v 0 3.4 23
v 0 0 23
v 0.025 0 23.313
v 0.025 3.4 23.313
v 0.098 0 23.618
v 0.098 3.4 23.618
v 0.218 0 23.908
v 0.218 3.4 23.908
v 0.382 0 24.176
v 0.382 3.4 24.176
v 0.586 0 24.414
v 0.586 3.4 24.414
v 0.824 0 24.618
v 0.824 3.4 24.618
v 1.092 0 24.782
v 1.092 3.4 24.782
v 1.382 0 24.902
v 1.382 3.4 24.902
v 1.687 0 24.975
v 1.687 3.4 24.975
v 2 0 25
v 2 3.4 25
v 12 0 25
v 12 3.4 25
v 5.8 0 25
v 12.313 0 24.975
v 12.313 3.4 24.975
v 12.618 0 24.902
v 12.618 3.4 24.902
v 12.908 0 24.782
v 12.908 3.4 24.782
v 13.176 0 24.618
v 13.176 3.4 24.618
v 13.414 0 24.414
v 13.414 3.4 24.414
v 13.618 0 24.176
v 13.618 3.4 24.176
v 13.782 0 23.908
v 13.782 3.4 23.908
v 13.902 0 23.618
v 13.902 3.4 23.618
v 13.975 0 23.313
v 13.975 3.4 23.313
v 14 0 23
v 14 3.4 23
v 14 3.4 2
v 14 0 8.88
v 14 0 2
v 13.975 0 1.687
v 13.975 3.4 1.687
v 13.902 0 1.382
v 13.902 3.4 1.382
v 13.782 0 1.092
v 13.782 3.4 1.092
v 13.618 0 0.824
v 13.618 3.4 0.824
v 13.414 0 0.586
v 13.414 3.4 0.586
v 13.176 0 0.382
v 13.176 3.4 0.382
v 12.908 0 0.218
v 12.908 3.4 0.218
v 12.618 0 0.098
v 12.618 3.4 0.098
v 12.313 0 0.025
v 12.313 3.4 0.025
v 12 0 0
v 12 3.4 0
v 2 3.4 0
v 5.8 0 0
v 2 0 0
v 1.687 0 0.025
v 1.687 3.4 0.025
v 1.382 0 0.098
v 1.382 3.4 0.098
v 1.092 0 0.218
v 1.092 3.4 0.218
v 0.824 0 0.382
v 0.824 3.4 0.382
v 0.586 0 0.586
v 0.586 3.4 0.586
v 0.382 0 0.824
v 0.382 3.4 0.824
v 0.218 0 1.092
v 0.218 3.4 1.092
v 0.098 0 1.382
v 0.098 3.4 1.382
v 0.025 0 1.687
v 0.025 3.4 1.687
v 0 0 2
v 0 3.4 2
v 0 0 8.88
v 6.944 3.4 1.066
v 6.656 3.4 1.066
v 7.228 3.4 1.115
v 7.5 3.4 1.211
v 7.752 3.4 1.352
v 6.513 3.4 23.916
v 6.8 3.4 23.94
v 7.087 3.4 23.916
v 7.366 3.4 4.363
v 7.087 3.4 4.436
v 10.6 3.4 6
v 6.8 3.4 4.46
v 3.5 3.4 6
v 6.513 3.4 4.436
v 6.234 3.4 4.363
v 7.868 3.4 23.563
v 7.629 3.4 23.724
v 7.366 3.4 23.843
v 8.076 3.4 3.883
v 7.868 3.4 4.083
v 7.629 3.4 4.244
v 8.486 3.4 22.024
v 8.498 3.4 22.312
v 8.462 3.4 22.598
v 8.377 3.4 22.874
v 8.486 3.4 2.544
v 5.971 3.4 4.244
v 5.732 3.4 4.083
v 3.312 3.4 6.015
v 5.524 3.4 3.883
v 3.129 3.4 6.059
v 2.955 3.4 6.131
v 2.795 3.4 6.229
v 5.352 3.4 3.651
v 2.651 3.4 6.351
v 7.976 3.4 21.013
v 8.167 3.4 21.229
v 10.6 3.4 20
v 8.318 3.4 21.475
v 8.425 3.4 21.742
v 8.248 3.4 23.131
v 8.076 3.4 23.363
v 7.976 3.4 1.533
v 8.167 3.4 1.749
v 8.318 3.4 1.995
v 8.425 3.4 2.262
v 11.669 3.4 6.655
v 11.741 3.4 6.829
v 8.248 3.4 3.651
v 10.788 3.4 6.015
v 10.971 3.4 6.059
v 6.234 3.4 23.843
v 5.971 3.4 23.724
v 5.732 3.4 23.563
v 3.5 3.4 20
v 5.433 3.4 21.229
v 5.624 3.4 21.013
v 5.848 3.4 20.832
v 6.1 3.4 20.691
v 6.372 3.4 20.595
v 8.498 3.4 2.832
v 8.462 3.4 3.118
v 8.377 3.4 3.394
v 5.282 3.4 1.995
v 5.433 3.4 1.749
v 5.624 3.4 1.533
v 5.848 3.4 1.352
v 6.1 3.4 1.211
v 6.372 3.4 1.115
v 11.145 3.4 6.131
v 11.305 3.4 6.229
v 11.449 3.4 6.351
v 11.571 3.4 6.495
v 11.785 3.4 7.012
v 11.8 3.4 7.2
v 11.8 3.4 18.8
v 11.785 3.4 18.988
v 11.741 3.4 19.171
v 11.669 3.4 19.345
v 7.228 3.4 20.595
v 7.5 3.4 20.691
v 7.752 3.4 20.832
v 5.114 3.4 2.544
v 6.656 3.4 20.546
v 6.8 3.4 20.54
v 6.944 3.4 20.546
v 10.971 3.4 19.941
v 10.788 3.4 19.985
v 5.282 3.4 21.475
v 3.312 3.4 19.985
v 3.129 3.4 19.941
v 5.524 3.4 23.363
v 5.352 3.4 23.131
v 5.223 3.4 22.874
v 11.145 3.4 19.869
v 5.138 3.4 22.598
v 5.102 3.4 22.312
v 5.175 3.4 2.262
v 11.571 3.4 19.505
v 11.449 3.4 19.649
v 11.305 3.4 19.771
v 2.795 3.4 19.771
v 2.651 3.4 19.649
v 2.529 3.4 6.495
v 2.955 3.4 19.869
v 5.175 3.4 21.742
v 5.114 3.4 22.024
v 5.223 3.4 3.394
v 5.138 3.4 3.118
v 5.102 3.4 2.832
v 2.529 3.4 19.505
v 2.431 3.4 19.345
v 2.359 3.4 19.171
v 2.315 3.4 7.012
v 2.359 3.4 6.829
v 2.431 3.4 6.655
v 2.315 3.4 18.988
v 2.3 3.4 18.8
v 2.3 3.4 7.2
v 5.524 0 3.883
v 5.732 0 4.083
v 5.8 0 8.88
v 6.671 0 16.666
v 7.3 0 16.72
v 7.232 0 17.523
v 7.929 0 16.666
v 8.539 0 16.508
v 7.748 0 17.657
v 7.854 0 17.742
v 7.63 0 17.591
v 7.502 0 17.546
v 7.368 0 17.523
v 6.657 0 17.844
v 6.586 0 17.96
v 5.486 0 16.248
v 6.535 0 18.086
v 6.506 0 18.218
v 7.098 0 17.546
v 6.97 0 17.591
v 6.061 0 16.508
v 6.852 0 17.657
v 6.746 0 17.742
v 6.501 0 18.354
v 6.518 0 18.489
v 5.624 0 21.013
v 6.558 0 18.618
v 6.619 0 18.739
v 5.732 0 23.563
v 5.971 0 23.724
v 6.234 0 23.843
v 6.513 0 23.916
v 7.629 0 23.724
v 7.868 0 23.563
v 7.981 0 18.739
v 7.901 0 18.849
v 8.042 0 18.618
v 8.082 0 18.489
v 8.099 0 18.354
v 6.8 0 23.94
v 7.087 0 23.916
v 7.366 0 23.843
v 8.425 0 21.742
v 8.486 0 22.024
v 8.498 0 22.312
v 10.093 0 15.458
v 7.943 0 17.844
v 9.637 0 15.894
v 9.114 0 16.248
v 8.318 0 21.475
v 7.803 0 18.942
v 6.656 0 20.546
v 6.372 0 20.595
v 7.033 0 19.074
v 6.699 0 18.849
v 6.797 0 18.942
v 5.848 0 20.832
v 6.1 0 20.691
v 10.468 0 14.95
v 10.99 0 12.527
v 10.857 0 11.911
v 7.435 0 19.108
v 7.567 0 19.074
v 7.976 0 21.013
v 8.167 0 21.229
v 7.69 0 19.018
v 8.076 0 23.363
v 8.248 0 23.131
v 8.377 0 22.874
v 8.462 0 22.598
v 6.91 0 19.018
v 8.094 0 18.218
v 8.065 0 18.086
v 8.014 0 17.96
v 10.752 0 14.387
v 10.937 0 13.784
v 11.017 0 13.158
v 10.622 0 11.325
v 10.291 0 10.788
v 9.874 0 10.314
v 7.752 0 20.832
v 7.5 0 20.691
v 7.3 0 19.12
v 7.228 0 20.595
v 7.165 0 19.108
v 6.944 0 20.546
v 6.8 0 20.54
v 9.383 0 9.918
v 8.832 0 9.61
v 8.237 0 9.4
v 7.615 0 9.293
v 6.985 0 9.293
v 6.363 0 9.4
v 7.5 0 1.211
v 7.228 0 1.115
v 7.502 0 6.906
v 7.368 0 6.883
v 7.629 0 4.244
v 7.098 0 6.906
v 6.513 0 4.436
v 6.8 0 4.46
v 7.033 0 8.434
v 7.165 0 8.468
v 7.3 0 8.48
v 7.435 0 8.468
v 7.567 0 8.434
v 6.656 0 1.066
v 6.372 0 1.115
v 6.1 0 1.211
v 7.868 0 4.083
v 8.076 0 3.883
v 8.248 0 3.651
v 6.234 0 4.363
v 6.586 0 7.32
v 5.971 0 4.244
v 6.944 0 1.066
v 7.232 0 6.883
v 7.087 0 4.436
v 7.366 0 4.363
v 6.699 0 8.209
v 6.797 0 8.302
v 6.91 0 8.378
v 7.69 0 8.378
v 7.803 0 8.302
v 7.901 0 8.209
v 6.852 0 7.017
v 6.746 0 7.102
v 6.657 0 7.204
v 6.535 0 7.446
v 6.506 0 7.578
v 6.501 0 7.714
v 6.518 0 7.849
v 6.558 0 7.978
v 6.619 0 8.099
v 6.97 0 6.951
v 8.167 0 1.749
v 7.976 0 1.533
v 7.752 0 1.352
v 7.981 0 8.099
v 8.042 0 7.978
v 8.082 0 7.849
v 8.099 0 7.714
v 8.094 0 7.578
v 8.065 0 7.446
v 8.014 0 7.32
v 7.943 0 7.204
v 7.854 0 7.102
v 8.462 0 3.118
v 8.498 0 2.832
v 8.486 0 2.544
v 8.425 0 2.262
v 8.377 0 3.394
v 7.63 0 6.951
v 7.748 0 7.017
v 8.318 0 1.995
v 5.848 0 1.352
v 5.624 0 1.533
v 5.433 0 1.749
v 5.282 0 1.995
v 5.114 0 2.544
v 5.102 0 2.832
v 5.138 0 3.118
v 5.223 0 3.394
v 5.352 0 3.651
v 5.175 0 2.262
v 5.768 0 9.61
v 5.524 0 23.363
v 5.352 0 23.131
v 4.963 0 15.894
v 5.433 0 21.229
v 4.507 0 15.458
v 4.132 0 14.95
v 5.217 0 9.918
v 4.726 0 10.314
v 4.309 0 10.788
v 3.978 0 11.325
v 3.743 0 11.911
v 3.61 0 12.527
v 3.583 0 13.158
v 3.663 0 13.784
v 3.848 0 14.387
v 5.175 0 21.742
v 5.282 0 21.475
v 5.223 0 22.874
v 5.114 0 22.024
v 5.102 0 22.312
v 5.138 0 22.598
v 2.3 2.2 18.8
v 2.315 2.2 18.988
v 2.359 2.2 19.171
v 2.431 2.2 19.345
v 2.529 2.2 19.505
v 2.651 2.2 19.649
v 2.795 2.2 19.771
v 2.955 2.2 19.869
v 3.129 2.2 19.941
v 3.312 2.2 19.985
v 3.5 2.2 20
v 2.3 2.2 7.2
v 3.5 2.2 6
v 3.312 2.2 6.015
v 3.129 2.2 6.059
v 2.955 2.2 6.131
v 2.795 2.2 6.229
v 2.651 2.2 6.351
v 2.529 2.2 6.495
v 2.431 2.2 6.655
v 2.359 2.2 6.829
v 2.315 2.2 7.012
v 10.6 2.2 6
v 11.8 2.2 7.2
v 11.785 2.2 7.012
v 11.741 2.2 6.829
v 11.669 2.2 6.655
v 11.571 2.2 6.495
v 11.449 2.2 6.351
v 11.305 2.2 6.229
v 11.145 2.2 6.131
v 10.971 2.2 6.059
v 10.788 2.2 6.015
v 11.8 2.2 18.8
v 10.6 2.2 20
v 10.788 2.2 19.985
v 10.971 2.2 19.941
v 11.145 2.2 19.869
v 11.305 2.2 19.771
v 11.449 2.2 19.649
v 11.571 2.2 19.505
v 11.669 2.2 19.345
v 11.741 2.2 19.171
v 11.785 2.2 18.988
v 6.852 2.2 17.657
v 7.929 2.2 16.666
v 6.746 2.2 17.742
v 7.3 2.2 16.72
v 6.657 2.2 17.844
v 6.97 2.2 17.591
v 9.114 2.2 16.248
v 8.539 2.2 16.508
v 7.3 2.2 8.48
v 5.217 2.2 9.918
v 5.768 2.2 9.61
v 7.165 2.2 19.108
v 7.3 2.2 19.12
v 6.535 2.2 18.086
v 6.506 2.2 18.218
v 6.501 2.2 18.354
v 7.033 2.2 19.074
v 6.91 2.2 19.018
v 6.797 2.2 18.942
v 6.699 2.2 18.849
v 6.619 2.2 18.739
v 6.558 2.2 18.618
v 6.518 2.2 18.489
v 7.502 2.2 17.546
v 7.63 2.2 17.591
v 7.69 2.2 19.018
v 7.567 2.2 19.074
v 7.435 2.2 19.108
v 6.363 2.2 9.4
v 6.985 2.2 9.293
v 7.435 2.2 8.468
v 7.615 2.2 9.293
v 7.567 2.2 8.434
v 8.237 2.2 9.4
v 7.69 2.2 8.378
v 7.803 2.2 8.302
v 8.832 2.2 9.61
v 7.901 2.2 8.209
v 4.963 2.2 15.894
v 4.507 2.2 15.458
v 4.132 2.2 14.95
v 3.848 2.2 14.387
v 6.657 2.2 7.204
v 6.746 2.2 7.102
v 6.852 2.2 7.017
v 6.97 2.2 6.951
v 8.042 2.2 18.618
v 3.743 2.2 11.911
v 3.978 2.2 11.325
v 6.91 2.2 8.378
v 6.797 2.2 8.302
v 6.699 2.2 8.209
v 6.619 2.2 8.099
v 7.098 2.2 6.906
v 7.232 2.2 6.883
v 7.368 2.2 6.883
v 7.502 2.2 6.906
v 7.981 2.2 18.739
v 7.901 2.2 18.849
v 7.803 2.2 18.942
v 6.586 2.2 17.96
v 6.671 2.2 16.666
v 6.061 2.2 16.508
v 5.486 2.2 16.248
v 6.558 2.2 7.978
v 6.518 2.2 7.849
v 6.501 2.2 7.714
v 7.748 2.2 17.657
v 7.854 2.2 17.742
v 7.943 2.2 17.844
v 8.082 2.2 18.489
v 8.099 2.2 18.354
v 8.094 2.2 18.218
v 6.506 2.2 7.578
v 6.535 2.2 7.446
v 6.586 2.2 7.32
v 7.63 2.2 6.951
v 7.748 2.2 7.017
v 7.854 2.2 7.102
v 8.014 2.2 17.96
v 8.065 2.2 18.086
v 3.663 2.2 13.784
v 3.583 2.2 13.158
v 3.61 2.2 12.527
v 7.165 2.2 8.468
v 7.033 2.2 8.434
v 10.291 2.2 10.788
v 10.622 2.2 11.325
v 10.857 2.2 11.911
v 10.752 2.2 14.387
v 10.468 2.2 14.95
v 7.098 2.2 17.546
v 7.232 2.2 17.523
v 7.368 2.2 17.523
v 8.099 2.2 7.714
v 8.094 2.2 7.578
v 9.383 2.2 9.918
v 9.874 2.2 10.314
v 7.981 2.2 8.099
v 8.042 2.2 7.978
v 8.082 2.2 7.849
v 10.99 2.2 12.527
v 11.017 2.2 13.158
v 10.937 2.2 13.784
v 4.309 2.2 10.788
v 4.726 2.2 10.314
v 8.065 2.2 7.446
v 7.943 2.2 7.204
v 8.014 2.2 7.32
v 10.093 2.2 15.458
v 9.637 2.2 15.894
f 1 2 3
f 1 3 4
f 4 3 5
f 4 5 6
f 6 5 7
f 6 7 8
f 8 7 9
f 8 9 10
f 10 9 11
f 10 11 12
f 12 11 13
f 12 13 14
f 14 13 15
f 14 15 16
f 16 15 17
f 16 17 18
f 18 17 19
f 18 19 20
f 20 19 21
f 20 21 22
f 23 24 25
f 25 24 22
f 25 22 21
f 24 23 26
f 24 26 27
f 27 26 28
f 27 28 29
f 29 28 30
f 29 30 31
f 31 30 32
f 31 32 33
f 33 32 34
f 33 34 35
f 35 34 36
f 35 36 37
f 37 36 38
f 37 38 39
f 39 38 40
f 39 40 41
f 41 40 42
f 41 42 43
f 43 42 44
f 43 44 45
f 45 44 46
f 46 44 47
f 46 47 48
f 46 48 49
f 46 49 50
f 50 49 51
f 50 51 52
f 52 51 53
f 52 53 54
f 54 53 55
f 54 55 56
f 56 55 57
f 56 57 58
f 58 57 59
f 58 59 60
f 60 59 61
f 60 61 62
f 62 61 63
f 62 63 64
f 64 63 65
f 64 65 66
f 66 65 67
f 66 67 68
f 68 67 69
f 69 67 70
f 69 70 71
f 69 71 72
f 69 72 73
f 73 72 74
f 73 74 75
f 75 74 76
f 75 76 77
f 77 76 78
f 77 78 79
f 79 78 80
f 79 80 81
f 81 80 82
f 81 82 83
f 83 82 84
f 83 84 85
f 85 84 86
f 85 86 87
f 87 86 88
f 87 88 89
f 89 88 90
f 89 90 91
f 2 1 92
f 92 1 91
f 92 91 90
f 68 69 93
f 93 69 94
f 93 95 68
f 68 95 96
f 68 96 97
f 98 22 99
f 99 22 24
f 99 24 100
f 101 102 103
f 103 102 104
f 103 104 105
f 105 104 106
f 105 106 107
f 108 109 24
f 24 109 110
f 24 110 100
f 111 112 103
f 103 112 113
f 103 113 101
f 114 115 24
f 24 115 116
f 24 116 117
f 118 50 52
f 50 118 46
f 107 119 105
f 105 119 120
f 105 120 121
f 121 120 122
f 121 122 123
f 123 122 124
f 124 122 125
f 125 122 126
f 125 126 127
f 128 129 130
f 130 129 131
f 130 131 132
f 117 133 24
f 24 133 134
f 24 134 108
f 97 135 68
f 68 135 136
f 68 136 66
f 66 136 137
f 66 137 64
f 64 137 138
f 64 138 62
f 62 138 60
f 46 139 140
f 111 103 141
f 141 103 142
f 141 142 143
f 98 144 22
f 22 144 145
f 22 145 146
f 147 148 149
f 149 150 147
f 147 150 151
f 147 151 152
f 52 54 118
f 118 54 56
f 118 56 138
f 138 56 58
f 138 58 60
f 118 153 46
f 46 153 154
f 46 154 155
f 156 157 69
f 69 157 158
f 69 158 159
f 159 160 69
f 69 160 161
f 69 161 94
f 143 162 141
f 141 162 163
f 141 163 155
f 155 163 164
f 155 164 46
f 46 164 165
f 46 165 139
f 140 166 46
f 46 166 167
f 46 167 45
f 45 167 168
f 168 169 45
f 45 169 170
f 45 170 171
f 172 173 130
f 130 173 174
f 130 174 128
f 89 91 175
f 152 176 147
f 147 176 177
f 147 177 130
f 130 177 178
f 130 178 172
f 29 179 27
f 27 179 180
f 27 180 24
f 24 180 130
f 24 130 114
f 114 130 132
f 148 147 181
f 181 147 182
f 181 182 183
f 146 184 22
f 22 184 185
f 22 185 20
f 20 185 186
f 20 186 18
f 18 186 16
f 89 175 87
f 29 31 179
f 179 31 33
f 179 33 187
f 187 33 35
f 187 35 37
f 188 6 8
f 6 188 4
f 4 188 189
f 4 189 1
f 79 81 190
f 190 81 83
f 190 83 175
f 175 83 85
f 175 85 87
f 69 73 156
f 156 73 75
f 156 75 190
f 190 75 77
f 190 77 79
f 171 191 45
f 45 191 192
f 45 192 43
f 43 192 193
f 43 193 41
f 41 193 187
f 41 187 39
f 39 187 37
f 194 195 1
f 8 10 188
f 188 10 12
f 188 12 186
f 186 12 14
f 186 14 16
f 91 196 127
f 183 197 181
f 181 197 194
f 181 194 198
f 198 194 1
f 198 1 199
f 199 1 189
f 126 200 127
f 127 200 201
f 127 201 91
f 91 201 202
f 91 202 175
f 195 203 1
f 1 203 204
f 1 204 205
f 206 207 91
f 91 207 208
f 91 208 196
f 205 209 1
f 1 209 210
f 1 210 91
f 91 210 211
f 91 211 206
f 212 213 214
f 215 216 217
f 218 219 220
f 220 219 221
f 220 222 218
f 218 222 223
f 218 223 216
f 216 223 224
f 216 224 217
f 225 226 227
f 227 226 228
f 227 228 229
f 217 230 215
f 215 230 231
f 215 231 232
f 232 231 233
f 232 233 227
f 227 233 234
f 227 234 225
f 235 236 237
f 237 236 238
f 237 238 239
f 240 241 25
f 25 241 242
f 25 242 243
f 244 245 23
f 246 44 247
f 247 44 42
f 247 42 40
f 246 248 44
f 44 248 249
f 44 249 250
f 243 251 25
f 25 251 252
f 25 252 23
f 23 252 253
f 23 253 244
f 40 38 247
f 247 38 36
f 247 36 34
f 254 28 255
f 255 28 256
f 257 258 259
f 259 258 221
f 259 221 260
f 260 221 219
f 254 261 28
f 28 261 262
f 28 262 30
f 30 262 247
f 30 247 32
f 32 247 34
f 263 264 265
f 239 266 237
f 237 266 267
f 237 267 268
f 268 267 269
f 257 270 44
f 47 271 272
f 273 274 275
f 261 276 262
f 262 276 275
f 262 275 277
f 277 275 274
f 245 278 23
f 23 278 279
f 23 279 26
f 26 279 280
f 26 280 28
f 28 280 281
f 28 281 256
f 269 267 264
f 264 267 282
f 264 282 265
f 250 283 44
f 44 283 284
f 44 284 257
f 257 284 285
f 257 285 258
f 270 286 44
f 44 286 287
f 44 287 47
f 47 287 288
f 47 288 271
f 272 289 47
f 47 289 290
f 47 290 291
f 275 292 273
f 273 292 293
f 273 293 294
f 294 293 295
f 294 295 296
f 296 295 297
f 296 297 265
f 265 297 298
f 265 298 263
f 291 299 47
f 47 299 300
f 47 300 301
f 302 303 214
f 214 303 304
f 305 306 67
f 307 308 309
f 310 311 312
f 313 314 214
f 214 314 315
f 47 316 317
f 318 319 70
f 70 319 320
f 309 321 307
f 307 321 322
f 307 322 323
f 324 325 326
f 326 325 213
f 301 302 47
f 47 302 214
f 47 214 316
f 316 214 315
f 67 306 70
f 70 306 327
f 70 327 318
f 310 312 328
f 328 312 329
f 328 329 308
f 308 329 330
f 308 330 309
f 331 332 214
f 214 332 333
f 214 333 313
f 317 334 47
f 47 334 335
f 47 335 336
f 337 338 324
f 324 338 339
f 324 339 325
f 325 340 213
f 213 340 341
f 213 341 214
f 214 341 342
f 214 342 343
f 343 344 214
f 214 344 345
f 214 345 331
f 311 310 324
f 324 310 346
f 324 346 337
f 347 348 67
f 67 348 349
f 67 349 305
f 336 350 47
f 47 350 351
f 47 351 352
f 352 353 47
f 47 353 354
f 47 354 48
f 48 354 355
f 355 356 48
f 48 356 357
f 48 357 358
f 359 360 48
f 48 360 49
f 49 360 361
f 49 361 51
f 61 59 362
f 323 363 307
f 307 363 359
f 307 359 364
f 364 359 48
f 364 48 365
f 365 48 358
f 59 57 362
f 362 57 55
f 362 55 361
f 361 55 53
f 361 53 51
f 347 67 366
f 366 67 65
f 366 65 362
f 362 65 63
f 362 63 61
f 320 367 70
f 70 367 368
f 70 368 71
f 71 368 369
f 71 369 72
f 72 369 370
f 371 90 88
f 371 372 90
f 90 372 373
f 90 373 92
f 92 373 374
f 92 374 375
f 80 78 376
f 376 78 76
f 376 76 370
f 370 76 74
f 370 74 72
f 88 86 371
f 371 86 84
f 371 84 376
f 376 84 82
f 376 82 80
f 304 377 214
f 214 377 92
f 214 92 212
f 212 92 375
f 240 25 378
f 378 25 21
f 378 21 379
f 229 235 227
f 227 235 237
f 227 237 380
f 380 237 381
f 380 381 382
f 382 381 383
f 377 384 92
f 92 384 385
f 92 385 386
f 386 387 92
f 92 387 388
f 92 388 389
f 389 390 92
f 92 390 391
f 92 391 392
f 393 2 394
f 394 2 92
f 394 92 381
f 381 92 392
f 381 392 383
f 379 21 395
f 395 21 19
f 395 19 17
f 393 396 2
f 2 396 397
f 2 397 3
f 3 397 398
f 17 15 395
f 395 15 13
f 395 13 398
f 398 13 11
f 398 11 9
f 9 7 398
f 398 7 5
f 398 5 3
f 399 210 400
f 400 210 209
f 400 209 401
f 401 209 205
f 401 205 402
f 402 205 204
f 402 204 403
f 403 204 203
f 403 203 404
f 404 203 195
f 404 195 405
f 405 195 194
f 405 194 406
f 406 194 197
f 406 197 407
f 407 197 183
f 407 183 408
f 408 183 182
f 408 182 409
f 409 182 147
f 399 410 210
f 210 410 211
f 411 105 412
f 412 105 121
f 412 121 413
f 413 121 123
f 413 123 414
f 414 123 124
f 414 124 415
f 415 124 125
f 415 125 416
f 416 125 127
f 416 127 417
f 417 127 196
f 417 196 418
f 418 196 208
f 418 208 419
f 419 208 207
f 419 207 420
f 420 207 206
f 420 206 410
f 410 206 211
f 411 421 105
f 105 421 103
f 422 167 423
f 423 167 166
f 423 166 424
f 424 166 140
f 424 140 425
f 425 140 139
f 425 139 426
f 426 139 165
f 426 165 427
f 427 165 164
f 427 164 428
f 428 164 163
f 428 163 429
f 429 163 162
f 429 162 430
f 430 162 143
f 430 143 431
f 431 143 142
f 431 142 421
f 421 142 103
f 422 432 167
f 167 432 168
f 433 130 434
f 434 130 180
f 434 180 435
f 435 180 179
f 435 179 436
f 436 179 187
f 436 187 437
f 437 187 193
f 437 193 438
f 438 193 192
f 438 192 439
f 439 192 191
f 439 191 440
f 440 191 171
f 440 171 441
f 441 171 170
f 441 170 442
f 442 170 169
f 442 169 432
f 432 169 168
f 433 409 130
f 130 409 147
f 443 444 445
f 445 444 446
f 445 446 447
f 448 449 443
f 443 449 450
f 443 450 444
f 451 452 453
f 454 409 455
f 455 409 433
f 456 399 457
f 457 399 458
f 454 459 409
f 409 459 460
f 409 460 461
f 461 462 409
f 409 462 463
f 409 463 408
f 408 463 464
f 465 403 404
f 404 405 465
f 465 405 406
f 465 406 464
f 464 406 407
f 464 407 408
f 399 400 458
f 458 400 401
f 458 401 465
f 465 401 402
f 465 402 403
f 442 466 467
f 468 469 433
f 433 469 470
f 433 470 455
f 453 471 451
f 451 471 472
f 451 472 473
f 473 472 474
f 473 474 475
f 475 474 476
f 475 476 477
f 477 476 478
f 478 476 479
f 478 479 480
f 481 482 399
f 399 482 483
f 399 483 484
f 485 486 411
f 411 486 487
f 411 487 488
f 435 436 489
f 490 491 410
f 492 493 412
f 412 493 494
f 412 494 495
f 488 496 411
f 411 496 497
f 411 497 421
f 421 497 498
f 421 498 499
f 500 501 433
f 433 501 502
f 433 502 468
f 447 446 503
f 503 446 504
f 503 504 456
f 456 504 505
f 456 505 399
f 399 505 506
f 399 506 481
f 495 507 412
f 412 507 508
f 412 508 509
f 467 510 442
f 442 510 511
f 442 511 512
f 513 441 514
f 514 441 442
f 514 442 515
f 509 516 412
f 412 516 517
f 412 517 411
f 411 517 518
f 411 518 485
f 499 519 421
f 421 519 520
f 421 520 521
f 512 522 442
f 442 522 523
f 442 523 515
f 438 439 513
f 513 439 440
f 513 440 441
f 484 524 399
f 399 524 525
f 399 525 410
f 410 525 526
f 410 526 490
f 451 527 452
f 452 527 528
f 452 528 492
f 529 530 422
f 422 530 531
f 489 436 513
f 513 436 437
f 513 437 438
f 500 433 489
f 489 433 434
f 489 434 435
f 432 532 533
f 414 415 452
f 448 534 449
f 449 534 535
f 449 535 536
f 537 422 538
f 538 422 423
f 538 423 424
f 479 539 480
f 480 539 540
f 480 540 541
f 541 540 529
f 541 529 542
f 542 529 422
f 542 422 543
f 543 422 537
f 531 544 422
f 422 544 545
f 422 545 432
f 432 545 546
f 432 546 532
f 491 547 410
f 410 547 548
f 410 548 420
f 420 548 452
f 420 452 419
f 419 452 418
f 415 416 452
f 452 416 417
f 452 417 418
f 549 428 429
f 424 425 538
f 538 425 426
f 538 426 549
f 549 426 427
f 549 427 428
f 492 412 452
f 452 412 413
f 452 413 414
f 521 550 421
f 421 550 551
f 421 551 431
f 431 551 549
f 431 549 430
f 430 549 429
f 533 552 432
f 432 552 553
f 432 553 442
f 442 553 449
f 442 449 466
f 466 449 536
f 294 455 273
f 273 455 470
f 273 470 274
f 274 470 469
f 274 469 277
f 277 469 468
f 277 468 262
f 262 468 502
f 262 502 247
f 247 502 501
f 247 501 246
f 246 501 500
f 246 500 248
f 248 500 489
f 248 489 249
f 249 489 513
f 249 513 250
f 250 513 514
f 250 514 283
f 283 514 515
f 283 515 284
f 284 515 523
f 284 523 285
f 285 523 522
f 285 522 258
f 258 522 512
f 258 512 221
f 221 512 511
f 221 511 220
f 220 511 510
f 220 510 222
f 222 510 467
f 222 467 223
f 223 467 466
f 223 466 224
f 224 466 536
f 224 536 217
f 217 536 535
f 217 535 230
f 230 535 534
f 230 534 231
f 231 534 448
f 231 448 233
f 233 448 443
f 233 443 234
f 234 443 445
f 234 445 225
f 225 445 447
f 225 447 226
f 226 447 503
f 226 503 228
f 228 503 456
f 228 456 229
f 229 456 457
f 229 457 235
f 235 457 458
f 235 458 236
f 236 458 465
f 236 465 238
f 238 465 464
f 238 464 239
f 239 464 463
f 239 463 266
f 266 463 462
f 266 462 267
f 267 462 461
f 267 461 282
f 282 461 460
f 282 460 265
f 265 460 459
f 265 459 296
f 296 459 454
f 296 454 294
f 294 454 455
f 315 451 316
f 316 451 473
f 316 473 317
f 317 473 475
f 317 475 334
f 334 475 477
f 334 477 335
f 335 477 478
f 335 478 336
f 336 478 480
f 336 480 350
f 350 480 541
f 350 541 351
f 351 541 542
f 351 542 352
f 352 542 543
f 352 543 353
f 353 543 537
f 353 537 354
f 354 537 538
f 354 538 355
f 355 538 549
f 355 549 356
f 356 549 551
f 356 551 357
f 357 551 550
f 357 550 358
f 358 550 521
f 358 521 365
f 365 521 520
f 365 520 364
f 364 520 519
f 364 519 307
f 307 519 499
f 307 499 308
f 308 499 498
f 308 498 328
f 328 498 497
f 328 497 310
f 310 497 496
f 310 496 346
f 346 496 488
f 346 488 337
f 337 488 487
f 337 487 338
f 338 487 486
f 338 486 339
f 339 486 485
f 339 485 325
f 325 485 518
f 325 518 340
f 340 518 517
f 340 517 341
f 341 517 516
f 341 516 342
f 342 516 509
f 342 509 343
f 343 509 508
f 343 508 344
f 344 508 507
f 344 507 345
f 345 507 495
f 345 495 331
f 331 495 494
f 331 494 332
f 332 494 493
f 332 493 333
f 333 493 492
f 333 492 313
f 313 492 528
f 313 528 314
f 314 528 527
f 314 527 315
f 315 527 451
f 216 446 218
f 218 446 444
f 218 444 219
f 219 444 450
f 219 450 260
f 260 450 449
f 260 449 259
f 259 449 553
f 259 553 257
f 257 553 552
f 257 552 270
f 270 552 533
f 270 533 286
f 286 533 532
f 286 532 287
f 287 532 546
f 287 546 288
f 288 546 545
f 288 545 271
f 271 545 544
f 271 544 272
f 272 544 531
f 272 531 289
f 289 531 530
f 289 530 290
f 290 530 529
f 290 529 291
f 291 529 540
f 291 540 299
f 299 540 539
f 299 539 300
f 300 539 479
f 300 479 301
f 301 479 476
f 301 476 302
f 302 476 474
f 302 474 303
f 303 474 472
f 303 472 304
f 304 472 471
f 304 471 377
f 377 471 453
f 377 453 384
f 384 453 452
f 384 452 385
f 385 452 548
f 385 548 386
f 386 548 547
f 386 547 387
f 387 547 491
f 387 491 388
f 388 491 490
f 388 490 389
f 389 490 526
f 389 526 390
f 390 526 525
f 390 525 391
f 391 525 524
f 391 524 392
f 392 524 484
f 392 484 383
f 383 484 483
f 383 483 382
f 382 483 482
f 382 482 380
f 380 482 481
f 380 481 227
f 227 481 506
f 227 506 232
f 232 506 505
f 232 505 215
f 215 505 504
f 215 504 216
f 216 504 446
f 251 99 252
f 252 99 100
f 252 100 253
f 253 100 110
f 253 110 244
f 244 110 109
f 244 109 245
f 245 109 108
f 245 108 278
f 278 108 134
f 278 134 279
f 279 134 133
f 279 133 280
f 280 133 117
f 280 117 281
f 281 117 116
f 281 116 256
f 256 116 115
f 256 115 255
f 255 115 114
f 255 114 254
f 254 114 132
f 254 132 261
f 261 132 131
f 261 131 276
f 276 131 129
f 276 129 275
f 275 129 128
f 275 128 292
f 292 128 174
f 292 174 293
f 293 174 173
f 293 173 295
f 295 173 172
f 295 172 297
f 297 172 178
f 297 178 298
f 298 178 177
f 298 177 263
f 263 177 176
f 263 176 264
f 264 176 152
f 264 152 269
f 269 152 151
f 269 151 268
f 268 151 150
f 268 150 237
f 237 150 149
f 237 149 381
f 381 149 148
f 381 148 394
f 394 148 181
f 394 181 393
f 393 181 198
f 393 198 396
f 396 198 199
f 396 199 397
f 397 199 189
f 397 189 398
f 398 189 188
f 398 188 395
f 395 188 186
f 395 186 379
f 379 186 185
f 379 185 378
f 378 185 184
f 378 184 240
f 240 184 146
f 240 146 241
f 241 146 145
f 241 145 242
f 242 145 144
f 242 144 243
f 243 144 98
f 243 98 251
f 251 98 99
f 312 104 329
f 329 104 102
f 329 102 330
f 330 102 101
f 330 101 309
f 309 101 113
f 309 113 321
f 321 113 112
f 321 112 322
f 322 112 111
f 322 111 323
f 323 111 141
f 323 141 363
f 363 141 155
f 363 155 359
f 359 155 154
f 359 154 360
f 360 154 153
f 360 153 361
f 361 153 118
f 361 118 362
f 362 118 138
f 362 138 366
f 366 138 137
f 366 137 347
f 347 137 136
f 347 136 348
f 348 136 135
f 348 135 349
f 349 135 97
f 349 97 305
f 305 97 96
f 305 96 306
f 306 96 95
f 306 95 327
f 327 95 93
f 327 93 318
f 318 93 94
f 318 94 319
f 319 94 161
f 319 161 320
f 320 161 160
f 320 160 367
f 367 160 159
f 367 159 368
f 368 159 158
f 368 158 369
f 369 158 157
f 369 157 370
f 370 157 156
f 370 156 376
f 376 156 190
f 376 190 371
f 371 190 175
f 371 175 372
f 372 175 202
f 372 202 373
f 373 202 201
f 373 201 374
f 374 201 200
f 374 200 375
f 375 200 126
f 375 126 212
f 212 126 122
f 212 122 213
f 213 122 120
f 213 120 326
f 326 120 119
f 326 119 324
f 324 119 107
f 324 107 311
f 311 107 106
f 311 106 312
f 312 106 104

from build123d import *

# Parameters (mm, degrees)
BOSS_EXTRUDE1_DEPTH = 3.4
CUT_EXTRUDE1_DEPTH  = 1.2
SKETCH3_R           = 3.72
SKETCH3_R_2         = 0.8
CUT_EXTRUDE2_DEPTH  = 29.737432036
SKETCH4_R           = 1.7
CUT_EXTRUDE3_DEPTH  = 29.854115824


with BuildPart() as part:
    # Sketch1 → Boss-Extrude1 (new body)
    with BuildSketch(Plane(origin=(0, 0, 0), x_dir=(1, 0, 0), z_dir=(0, 1, 0))):
        with BuildLine():
            Line((2, 0), (12, 0))
            ThreePointArc((12, 0), (13.414213562, -0.585786438), (14, -2))
            Line((14, -2), (14, -23))
            ThreePointArc((14, -23), (13.414213562, -24.414213562), (12, -25))
            Line((12, -25), (2, -25))
            ThreePointArc((2, -25), (0.585786438, -24.414213562), (0, -23))
            Line((0, -23), (0, -2))
            ThreePointArc((0, -2), (0.585786438, -0.585786438), (2, 0))
        make_face()
    extrude(amount=BOSS_EXTRUDE1_DEPTH)

    # Sketch2 → Cut-Extrude1 (cut)
    with BuildSketch(Plane(origin=(0, 3.4, 0), x_dir=(1, 0, 0), z_dir=(0, 1, 0))):
        with BuildLine():
            Line((3.5, -6), (10.6, -6))
            ThreePointArc((10.6, -6), (11.448528137, -6.351471863), (11.8, -7.2))
            Line((11.8, -7.2), (11.8, -18.8))
            ThreePointArc((11.8, -18.8), (11.448528137, -19.648528137), (10.6, -20))
            Line((10.6, -20), (3.5, -20))
            ThreePointArc((3.5, -20), (2.651471863, -19.648528137), (2.3, -18.8))
            Line((2.3, -18.8), (2.3, -7.2))
            ThreePointArc((2.3, -7.2), (2.651471863, -6.351471863), (3.5, -6))
        make_face()
    extrude(amount=-CUT_EXTRUDE1_DEPTH, mode=Mode.SUBTRACT)

    # Sketch3 → Cut-Extrude2 (cut, through all)
    with BuildSketch(Plane(origin=(0, 2.2, 0), x_dir=(1, 0, 0), z_dir=(0, 1, 0))):
        with Locations(Location((7.3, -13, 0), (0, 0, 270))):
            Circle(SKETCH3_R)
        with Locations(Location((7.3, -7.68, 0), (0, 0, 270))):
            Circle(SKETCH3_R_2)
        with Locations(Location((7.3, -18.32, 0), (0, 0, 270))):
            Circle(SKETCH3_R_2)
    extrude(amount=-CUT_EXTRUDE2_DEPTH, mode=Mode.SUBTRACT)

    # Sketch4 → Cut-Extrude3 (cut, through all)
    with BuildSketch(Plane(origin=(0, 3.4, 0), x_dir=(1, 0, 0), z_dir=(0, 1, 0))):
        with Locations(Location((6.8, -2.76, 0), (0, 0, 270))):
            Circle(SKETCH4_R)
        with Locations(Location((6.8, -22.24, 0), (0, 0, 90))):
            Circle(SKETCH4_R)
    extrude(amount=-CUT_EXTRUDE3_DEPTH, mode=Mode.SUBTRACT)


solid = part.part
